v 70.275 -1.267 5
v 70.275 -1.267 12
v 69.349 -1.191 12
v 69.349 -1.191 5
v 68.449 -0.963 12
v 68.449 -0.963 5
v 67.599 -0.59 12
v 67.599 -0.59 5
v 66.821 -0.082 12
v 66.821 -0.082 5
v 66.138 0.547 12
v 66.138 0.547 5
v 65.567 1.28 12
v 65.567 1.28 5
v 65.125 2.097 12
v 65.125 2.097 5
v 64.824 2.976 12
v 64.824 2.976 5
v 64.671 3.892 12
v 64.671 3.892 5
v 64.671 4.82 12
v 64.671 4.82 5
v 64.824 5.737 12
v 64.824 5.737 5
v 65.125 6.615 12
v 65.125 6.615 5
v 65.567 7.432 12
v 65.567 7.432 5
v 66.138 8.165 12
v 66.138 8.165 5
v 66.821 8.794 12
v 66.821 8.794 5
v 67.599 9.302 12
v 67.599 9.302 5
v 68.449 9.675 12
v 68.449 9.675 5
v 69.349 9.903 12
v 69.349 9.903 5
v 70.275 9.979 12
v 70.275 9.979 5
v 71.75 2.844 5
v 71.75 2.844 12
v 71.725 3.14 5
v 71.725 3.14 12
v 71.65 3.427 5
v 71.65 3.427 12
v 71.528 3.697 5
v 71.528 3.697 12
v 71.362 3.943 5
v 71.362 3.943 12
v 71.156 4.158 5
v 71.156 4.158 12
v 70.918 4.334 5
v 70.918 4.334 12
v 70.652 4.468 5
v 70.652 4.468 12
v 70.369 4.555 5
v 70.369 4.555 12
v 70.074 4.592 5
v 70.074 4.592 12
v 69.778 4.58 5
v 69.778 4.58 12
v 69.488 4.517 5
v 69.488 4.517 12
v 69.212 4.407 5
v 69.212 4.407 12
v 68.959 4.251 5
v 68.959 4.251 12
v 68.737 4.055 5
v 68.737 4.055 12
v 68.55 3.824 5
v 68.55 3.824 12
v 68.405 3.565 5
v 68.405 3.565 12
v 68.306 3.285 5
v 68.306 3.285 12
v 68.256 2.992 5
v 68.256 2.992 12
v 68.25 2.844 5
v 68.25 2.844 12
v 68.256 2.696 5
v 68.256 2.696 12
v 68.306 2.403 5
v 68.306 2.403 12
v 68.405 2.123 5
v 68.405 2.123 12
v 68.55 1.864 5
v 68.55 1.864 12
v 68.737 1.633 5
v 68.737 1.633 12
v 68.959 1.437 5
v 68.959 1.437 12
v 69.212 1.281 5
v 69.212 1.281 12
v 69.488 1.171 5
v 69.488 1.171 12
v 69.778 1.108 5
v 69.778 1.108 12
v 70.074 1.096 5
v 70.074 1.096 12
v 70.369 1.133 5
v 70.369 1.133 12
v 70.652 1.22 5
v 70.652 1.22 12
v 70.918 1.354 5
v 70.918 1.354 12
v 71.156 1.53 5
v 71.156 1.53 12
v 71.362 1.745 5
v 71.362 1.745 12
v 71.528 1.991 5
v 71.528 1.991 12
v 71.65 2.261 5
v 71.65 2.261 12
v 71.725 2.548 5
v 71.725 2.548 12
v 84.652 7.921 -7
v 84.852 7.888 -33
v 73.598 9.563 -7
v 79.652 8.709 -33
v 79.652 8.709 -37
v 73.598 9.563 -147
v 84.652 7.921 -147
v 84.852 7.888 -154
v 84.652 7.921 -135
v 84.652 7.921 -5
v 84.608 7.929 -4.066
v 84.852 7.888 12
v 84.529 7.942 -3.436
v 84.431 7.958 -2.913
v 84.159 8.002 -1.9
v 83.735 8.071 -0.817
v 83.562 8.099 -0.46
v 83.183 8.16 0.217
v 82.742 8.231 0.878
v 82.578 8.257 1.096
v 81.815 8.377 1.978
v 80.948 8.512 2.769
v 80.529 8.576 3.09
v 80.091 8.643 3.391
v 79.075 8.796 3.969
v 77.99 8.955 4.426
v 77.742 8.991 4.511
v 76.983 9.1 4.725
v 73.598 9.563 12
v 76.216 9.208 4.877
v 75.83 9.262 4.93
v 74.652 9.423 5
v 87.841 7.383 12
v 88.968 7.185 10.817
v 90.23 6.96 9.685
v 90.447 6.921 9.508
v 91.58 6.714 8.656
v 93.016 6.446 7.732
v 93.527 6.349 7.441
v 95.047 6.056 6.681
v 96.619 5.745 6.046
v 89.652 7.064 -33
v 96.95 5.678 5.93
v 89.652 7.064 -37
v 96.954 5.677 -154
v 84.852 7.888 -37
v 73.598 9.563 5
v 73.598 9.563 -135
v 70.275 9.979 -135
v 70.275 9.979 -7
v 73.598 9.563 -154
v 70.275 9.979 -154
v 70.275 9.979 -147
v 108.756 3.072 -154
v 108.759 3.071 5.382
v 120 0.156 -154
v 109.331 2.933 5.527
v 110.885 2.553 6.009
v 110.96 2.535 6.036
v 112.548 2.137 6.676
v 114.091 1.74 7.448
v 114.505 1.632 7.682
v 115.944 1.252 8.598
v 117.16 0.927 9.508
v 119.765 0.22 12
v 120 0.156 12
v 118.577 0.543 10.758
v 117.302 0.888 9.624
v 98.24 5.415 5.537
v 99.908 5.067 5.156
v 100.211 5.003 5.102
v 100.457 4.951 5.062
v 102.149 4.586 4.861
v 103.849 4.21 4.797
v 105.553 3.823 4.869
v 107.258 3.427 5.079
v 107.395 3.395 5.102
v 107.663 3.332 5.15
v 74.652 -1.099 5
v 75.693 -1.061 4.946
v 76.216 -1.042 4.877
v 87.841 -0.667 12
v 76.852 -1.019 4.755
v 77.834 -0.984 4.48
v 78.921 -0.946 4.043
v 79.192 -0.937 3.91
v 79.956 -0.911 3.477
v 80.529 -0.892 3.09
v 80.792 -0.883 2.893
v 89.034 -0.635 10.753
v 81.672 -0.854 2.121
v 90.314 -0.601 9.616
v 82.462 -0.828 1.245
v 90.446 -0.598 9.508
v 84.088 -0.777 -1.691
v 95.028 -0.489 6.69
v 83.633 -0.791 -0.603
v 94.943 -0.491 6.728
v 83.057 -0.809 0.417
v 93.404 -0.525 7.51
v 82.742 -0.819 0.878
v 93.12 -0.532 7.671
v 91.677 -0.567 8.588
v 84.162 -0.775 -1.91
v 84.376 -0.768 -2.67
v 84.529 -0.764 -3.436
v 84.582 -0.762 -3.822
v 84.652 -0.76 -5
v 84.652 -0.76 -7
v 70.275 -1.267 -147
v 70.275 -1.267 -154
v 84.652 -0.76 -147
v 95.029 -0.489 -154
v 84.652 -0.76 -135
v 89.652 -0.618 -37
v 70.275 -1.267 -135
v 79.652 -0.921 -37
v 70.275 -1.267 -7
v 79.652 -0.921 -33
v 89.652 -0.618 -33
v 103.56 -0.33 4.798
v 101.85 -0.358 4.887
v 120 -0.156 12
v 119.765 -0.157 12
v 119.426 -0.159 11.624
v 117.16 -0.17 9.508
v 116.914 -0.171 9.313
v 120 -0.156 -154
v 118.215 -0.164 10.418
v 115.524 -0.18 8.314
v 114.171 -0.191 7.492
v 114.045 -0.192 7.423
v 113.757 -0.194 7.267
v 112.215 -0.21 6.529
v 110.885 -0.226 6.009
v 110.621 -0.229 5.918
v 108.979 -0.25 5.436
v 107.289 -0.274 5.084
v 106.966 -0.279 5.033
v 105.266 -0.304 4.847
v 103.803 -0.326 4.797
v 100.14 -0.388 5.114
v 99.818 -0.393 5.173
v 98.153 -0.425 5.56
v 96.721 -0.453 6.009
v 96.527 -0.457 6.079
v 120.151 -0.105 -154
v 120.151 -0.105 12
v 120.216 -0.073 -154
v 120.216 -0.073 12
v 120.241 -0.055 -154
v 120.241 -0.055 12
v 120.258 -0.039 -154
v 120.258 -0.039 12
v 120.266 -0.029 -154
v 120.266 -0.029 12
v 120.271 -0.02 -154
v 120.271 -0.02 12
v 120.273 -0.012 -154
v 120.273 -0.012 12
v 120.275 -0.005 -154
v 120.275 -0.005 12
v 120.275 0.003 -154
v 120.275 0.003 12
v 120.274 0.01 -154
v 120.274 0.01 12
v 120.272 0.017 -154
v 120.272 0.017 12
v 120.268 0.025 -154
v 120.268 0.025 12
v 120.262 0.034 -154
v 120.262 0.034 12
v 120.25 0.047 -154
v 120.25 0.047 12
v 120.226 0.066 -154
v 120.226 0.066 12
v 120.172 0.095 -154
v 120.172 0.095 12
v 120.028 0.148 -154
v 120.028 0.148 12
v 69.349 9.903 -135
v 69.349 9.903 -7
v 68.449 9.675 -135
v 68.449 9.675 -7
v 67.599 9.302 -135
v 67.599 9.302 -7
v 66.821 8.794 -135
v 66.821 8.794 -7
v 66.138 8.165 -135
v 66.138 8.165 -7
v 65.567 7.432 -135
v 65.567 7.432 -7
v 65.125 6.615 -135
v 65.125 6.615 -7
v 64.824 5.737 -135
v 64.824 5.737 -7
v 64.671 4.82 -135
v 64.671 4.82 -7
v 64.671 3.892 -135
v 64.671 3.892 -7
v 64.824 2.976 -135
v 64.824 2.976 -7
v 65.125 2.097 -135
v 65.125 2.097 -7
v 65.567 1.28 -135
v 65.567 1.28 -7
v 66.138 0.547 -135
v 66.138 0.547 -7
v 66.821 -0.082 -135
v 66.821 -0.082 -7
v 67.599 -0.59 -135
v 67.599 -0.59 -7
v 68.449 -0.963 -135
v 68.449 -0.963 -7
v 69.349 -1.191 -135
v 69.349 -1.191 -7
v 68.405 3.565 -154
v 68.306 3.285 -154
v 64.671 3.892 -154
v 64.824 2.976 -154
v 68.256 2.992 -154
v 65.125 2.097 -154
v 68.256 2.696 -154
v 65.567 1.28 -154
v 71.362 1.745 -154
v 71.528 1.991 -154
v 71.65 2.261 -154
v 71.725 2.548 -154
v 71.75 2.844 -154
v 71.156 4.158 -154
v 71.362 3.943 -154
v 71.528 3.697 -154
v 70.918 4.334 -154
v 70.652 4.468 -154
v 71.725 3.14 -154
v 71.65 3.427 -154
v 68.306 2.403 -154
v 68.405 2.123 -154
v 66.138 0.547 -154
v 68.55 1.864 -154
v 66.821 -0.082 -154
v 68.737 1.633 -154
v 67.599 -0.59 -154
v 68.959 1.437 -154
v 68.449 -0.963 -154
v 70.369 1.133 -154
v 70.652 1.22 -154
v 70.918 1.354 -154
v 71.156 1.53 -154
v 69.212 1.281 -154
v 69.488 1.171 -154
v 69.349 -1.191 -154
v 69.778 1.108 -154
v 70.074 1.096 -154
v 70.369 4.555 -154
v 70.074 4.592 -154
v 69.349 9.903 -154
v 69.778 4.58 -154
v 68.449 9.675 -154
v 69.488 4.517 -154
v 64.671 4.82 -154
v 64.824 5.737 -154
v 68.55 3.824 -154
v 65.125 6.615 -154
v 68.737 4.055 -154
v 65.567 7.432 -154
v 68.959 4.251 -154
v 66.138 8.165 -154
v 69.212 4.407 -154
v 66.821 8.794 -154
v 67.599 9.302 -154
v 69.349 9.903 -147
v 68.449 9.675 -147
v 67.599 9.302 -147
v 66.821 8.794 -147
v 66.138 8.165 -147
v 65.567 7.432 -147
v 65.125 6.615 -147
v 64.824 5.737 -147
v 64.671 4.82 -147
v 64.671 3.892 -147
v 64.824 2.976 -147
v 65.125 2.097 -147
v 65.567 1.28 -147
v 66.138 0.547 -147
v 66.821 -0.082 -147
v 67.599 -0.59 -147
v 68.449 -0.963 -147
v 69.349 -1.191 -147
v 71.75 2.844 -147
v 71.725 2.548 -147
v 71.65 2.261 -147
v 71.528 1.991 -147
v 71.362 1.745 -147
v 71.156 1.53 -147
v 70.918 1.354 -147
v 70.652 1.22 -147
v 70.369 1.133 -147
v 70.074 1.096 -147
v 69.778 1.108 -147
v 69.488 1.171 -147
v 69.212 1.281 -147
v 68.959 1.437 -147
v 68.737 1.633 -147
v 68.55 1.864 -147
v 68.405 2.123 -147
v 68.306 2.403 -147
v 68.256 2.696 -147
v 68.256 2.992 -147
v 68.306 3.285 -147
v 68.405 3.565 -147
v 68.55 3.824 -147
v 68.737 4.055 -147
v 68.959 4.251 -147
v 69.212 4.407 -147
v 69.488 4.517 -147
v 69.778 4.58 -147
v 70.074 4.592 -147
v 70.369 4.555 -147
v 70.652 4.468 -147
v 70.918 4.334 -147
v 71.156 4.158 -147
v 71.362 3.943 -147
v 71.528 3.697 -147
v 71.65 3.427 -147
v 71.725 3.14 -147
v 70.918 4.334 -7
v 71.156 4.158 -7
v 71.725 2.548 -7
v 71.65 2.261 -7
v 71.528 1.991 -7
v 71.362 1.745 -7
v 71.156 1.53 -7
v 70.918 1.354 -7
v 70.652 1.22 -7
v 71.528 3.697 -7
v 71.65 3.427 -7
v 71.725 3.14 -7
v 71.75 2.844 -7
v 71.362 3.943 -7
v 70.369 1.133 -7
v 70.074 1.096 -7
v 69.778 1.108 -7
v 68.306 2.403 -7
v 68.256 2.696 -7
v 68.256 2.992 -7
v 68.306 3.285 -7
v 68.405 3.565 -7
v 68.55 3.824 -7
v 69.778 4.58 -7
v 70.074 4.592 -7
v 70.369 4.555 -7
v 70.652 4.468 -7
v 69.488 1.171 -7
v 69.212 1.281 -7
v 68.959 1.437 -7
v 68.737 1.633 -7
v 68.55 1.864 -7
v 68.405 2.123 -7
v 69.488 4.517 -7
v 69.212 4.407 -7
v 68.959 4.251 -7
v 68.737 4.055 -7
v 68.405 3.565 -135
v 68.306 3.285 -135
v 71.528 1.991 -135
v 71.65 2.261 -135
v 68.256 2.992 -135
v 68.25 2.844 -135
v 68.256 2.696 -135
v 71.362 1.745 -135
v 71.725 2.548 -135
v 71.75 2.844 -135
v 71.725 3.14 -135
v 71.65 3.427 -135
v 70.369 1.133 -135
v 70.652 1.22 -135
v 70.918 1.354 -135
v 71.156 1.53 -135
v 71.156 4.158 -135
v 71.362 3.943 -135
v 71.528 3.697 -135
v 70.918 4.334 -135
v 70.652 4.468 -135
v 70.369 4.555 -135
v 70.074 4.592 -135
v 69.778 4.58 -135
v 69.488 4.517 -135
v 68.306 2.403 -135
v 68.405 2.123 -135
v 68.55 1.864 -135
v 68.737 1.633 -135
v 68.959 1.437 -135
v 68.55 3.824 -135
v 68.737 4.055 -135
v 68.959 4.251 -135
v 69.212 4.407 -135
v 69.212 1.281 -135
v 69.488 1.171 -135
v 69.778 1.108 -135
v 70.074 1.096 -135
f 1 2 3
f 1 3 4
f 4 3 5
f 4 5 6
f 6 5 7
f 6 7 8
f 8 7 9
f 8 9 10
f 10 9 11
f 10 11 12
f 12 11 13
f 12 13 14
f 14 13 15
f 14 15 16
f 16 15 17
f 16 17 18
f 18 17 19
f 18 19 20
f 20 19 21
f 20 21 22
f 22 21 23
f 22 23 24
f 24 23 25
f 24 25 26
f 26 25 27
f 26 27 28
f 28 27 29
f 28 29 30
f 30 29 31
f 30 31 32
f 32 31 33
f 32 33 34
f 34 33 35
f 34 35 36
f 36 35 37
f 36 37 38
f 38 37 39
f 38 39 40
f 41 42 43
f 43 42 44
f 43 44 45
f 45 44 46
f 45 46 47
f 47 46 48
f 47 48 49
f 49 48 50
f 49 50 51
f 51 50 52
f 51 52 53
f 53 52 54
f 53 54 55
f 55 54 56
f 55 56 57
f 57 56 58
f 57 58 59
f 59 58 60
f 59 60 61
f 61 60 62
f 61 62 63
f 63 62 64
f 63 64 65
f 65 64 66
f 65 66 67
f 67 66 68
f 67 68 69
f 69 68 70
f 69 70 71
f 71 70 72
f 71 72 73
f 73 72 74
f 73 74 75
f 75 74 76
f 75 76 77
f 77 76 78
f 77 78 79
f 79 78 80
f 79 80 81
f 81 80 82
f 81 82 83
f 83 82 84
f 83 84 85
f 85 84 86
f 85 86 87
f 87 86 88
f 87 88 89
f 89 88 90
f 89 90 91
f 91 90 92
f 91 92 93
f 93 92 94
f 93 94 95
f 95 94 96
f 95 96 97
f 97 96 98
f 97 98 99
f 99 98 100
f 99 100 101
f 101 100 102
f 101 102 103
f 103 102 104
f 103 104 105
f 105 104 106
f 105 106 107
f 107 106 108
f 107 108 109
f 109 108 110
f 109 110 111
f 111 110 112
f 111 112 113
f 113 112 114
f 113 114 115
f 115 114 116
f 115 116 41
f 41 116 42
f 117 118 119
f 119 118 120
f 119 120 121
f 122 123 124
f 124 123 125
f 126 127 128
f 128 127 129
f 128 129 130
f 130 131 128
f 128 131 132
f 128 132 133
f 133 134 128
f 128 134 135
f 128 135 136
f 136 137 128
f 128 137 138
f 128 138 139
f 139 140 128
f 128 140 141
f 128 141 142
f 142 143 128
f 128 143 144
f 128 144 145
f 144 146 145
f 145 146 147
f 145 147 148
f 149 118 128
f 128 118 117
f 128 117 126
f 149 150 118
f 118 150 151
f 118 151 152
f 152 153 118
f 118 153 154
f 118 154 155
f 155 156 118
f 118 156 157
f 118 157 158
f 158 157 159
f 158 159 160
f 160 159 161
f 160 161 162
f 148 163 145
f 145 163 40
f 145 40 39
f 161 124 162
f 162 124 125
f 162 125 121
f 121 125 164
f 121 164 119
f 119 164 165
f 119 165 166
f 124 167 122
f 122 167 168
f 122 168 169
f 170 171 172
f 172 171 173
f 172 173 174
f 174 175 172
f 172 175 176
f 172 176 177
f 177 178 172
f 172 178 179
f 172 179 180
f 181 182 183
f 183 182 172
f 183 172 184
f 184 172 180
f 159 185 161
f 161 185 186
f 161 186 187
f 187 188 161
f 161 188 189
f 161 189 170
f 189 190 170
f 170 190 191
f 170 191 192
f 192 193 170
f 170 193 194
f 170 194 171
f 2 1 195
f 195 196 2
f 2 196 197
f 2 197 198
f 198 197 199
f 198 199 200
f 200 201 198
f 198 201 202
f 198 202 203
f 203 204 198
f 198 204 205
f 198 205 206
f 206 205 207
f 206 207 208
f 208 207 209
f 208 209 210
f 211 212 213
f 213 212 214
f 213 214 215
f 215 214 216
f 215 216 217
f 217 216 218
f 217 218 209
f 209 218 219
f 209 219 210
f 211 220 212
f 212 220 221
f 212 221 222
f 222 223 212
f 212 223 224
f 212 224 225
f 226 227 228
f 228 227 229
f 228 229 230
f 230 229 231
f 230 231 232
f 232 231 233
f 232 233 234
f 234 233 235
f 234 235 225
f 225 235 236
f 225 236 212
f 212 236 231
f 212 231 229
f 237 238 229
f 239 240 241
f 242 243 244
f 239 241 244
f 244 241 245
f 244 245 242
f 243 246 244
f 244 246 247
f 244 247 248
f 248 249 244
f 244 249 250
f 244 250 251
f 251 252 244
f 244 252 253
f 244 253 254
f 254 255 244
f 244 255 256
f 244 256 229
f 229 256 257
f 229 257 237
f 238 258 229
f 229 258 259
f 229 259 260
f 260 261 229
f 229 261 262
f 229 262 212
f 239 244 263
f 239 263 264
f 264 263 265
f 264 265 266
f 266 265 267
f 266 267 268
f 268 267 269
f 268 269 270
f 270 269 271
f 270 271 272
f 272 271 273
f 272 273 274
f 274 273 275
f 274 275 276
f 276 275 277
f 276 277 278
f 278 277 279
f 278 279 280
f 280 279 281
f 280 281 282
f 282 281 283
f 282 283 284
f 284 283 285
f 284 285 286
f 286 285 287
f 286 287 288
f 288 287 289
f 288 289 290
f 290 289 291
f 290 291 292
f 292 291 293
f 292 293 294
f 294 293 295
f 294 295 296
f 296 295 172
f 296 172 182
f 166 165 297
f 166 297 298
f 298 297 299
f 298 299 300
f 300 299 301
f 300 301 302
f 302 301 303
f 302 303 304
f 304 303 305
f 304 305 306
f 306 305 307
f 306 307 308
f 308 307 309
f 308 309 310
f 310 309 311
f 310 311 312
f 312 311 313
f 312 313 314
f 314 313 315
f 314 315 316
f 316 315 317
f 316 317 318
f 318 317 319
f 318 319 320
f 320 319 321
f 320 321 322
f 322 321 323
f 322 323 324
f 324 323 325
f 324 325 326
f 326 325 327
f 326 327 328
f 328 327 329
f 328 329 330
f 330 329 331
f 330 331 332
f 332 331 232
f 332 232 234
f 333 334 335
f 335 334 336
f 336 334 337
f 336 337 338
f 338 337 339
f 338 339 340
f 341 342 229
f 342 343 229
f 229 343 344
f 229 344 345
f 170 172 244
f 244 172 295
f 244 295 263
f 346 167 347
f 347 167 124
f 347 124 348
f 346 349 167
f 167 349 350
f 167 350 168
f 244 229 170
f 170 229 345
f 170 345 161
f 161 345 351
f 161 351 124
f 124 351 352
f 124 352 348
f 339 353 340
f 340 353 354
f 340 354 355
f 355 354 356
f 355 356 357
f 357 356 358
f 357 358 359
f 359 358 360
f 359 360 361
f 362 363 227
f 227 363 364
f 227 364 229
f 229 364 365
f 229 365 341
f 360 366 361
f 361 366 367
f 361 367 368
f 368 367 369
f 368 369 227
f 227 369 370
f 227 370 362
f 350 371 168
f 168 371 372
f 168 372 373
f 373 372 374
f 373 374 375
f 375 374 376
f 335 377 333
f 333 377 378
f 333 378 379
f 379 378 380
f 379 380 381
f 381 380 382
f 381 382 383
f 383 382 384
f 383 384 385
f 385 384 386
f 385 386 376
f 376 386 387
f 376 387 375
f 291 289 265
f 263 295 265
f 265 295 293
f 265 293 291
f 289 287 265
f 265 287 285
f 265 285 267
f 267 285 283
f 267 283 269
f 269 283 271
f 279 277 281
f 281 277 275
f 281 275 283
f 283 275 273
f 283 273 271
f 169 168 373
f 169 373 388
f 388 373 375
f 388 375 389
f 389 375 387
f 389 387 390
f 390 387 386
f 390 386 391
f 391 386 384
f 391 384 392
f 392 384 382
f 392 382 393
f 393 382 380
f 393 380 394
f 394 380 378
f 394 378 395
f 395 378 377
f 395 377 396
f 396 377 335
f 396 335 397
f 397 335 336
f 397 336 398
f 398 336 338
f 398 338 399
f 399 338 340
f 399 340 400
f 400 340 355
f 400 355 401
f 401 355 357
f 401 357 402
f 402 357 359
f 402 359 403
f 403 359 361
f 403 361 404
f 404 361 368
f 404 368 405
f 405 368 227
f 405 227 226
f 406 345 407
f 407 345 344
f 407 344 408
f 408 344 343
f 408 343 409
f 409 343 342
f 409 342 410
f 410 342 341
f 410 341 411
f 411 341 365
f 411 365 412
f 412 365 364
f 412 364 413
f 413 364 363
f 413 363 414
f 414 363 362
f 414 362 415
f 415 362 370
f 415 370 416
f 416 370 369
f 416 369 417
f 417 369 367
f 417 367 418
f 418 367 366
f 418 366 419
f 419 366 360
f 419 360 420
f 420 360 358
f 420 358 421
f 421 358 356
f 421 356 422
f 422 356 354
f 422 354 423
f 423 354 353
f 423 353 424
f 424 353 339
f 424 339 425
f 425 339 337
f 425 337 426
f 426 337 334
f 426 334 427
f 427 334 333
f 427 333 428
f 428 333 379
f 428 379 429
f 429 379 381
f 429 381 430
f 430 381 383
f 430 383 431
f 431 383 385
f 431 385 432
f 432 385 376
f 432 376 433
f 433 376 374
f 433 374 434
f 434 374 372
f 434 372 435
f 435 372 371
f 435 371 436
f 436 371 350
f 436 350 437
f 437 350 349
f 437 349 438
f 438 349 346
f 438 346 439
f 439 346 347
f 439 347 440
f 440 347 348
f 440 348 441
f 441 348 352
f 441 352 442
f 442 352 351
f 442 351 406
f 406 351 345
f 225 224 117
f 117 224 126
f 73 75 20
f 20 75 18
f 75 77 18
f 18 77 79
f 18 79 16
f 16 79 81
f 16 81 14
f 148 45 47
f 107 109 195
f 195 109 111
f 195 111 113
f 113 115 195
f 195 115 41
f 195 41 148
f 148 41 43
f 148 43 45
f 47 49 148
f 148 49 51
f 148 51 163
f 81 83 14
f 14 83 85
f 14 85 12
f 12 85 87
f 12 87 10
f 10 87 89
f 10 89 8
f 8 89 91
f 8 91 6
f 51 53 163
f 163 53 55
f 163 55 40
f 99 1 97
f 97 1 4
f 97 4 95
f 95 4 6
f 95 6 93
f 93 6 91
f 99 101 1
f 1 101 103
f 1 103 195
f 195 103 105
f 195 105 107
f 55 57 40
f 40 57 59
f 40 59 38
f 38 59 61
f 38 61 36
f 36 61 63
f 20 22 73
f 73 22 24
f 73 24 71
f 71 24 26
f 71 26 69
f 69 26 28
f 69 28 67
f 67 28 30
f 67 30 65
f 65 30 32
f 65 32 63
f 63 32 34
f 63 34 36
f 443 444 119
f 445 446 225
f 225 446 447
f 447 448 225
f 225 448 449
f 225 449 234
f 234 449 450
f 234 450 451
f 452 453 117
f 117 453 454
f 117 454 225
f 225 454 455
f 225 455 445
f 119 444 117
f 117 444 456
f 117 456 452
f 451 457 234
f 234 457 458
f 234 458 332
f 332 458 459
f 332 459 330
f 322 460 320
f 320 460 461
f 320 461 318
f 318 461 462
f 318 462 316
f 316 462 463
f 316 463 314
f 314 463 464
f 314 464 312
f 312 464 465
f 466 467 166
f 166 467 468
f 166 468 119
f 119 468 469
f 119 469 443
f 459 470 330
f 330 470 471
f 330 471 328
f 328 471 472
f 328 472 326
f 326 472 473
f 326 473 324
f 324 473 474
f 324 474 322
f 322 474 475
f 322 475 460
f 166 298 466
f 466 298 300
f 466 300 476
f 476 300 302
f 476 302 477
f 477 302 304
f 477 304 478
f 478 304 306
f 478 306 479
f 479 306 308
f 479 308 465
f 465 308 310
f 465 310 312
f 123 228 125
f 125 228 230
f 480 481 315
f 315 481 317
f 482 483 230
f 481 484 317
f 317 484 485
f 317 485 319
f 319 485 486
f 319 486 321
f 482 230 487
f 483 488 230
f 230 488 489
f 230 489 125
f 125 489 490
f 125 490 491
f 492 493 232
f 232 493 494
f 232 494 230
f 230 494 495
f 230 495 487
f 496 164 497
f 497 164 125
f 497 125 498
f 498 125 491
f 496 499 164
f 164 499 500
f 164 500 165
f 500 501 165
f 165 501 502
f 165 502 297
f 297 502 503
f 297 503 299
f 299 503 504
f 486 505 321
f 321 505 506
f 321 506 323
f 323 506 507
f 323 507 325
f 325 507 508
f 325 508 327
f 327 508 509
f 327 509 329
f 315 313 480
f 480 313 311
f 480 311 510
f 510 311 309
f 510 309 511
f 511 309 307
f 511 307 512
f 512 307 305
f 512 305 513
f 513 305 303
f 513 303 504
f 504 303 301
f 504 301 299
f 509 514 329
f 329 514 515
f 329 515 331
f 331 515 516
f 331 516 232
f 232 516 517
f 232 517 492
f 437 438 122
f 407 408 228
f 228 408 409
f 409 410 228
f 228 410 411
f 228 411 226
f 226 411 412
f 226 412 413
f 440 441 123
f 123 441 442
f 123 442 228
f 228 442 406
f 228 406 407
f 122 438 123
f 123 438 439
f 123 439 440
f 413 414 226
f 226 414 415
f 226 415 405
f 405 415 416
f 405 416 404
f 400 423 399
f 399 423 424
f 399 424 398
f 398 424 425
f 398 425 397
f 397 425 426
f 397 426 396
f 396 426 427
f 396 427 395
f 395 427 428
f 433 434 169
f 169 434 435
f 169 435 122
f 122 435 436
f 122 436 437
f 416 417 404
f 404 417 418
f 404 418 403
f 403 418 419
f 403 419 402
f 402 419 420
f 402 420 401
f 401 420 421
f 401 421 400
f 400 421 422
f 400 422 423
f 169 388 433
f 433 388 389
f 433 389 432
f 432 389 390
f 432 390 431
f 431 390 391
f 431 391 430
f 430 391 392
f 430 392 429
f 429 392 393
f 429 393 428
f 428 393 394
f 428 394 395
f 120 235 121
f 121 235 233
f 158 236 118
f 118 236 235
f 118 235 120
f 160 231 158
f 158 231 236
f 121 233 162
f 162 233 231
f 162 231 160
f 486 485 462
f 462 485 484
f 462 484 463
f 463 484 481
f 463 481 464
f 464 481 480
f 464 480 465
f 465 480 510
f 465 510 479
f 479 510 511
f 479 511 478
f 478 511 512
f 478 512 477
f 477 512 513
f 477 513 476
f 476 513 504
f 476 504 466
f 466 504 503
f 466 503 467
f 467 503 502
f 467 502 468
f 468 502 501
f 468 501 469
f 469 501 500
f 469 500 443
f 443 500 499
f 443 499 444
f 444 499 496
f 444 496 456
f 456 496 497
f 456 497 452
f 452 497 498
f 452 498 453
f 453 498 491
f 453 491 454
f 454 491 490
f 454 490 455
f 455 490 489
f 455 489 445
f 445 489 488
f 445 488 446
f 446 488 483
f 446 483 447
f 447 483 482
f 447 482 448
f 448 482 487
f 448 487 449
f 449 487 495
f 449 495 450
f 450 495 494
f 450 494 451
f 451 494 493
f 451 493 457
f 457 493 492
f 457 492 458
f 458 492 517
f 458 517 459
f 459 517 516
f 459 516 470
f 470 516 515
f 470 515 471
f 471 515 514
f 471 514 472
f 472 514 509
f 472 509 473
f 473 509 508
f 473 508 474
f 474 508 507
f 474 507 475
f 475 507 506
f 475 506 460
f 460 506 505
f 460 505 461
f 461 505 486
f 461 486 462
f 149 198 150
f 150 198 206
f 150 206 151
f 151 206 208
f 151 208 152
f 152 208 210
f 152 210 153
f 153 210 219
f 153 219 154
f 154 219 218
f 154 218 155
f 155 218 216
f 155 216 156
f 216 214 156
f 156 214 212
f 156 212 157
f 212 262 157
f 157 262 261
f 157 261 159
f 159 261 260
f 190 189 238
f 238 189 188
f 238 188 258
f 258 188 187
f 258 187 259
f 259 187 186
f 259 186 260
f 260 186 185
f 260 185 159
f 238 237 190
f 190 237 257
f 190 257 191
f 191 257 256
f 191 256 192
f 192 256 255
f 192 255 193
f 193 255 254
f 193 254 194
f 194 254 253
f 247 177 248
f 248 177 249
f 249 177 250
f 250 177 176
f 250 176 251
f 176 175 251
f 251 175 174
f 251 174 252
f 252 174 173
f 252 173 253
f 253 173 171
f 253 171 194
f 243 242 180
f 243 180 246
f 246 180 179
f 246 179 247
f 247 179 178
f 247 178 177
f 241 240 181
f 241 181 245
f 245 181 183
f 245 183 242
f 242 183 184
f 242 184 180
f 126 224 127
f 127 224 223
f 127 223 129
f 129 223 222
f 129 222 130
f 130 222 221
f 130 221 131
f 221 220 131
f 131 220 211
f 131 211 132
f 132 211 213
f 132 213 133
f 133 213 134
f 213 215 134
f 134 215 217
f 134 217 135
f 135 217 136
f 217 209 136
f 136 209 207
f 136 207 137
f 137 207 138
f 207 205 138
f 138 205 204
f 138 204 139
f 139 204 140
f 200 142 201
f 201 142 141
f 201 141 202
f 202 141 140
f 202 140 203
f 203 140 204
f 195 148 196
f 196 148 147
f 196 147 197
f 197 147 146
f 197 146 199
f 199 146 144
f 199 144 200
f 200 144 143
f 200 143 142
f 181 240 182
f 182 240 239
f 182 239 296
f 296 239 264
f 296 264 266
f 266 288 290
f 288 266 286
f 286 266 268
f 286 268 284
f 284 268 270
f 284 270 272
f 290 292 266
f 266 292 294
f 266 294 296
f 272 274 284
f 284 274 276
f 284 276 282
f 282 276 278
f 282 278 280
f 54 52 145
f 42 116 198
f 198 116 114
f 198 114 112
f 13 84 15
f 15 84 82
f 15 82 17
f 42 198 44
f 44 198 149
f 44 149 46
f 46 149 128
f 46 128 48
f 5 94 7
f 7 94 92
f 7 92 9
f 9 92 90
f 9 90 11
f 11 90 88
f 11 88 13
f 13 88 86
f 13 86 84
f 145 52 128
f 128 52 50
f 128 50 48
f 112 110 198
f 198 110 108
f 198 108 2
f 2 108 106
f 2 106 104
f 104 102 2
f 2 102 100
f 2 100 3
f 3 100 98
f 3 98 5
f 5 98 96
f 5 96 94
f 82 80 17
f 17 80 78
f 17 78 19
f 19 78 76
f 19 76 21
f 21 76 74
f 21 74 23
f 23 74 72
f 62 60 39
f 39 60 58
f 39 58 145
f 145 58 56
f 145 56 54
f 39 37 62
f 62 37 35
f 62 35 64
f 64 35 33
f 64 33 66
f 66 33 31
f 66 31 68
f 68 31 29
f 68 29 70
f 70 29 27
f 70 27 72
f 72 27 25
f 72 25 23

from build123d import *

# Parameters (mm, degrees)
EXTRUDE_1_DEPTH          = 185
SKETCH_2_R               = 3.25
CUT_EXTRUDE_1_DEPTH      = 221.978766148
CUT_EXTRUDE_2_DEPTH      = 221.978766148
CUT_EXTRUDE_2_DEPTH_BACK = 221.978766148
EXTRUDE_2_DEPTH          = 166
SKETCH_6_R               = 1.75
CUT_EXTRUDE_3_DEPTH      = 206.235651098
CUT_EXTRUDE_4_DEPTH      = 216.057370215
CUT_EXTRUDE_4_DEPTH_BACK = 216.057370215
SKETCH_7_W               = 10
SKETCH_7_H               = 4
SKETCH_7_W_2             = 20
SKETCH_7_H_2             = 12
CUT_EXTRUDE_6_DEPTH      = 216.057370215
CUT_EXTRUDE_6_DEPTH_BACK = 216.057370215
SKETCH_9_R               = 21.288089845
FILLET_1_R               = 10
CUT_EXTRUDE_7_DEPTH      = 216.057370215
CUT_EXTRUDE_7_DEPTH_BACK = 216.057370215
SKETCH_10_W              = 131.862642568
SKETCH_10_H              = 171.330673695


with BuildPart() as part:
    # 草圖4 → 填料-伸長1 (new body)
    with BuildSketch(Plane.XY):
        with BuildLine():
            add(Edge.make_bspline(
                [(120, 0.156), (120.550064826, 0), (120, -0.156)],
                knots=[0, 0, 0, 1, 1, 1], degree=2))
            add(Edge.make_bspline(
                [(120, 0.156), (118.002062038, 0.699883829), (114.015827899, 1.785026774), (106.030245524, 3.758084328), (96.043999536, 5.938072944), (84.032443886, 8.087020219), (72.030199863, 9.848487706), (60.021268297, 11.104941512), (48.013383082, 11.888579605), (37.989056271, 11.896504921), (29.98519837, 11.342771412), (23.974194566, 10.613404695), (17.950199351, 9.537800408), (12.958326827, 8.244233687), (8.958076554, 6.937785184), (5.941795374, 5.704437414), (3.368139922, 4.370604372), (1.134204878, 2.77510484), (-0.810450078, 0.209036715), (1.28854905, -1.753439419), (3.430370135, -2.523784281), (5.981131747, -3.043733145), (8.993574888, -3.308089705), (12.998336856, -3.495180047), (18.001252309, -3.481166853), (24.002604177, -3.313228981), (29.999721531, -2.993463999), (37.999752898, -2.619308415), (47.998084378, -2.139166009), (60.000346089, -1.688308544), (71.998752124, -1.187669763), (83.99830623, -0.761253895), (95.998821653, -0.44759827), (105.999699706, -0.288346287), (113.999817607, -0.183470629), (117.999975201, -0.165156712), (120, -0.156)],
                knots=[0, 0, 0, 0, 0.025304886, 0.050487653, 0.100520433, 0.150190716, 0.199586607, 0.248740009, 0.297715539, 0.346600594, 0.371102737, 0.395726297, 0.420570145, 0.445825119, 0.458702216, 0.471919982, 0.485786003, 0.493461051, 0.506863029, 0.51614777, 0.522766003, 0.535269014, 0.547551134, 0.559786371, 0.584228898, 0.60868081, 0.633151284, 0.657621757, 0.706558114, 0.75548187, 0.804405627, 0.853320224, 0.902221408, 0.951113136, 0.975557228, 1, 1, 1, 1], degree=3))
        make_face()
    extrude(amount=EXTRUDE_1_DEPTH)

    # 草圖2 → 除料-伸長1 (cut, through all)
    with BuildSketch(Plane(origin=(0, 0, 0), x_dir=(-1, 0, 0), z_dir=(0, 0, -1))):
        with Locations((-25, 5)):
            Circle(SKETCH_2_R)
        with Locations((-50, 5)):
            Circle(SKETCH_2_R)
    extrude(amount=-CUT_EXTRUDE_1_DEPTH, mode=Mode.SUBTRACT)

    # 草圖3 → 除料-伸長2 (cut, two sides: drawn at the far end of the back side and taken through both)
    with BuildSketch(Plane(origin=(0, 0, 0), x_dir=(1, 0, 0), z_dir=(0, 1, 0)).offset(-CUT_EXTRUDE_2_DEPTH_BACK)):
        Polygon((70.275032413, -12), (120.275032413, -12), (166.480451747, 19.353311424), (-21.771072244, 70.933366938), (-60.731552483, -48.361554858), (-45.023238503, -192.444996011), (84.857900861, -230.57523876), (139.860309741, -200.53846228), (120.275032413, -178), (70.275032413, -178), align=None)
    extrude(amount=CUT_EXTRUDE_2_DEPTH + CUT_EXTRUDE_2_DEPTH_BACK, mode=Mode.SUBTRACT)

    # 草圖5 → 填料-伸長2 (add, through all)
    with BuildSketch(Plane.XY.offset(178)):
        with BuildLine():
            Line((70.275032413, 9.979427787), (70.275032413, -1.267341491))
            ThreePointArc((70.275032413, -1.267341491), (64.651647774, 4.356043148), (70.275032413, 9.979427787))
        make_face()
    extrude(amount=-EXTRUDE_2_DEPTH)

    # 草圖6 → 除料-伸長3 (cut, through all)
    with BuildSketch(Plane.XY.offset(178)):
        with Locations((70, 2.844)):
            Circle(SKETCH_6_R)
    extrude(amount=-CUT_EXTRUDE_3_DEPTH, mode=Mode.SUBTRACT)

    # 草圖7 → 除料-伸長4 (cut, two sides: drawn at the far end of the back side and taken through both)
    with BuildSketch(Plane(origin=(0, 0, 0), x_dir=(1, 0, 0), z_dir=(0, 1, 0)).offset(-CUT_EXTRUDE_4_DEPTH_BACK)):
        with Locations((84.651647774, -59)):
            Rectangle(SKETCH_7_W, SKETCH_7_H)
        with Locations((74.651647774, -25)):
            Rectangle(SKETCH_7_W_2, SKETCH_7_H_2)
        with Locations((74.651647774, -165)):
            Rectangle(SKETCH_7_W_2, SKETCH_7_H_2)
    extrude(amount=CUT_EXTRUDE_4_DEPTH + CUT_EXTRUDE_4_DEPTH_BACK, mode=Mode.SUBTRACT)

    # 草圖9 → 除料-伸長6 (cut, two sides: drawn at the far end of the back side and taken through both)
    with BuildSketch(Plane(origin=(0, 0, 0), x_dir=(1, 0, 0), z_dir=(0, 1, 0)).offset(-CUT_EXTRUDE_6_DEPTH_BACK)):
        with Locations((103.803043975, 2.084988425)):
            Circle(SKETCH_9_R)
    extrude(amount=CUT_EXTRUDE_6_DEPTH + CUT_EXTRUDE_6_DEPTH_BACK, mode=Mode.SUBTRACT)

    # 圓角1
    fillet_1_edges = [part.edges().sort_by_distance(p)[0] for p in [
        (84.651647774, 3.58065081, 19),
    ]]
    fillet(fillet_1_edges, radius=FILLET_1_R)

    # 鏡射1: part across plane


with BuildPart() as part_1:
    add(part.part)
    add(part.part.mirror(Plane(origin=(70.275032413, -3.495180047, 12), x_dir=(1, 0, 0), z_dir=(0, 0, 1))))

    # 草圖10 → 除料-伸長7 (cut, two sides: drawn at the far end of the back side and taken through both)
    with BuildSketch(Plane(origin=(0, 0, 0), x_dir=(1, 0, 0), z_dir=(0, 1, 0)).offset(-CUT_EXTRUDE_7_DEPTH_BACK)):
        with Locations((93.155972117, -97.665336848)):
            Rectangle(SKETCH_10_W, SKETCH_10_H)
    extrude(amount=CUT_EXTRUDE_7_DEPTH + CUT_EXTRUDE_7_DEPTH_BACK, mode=Mode.SUBTRACT)


solid = part_1.part
